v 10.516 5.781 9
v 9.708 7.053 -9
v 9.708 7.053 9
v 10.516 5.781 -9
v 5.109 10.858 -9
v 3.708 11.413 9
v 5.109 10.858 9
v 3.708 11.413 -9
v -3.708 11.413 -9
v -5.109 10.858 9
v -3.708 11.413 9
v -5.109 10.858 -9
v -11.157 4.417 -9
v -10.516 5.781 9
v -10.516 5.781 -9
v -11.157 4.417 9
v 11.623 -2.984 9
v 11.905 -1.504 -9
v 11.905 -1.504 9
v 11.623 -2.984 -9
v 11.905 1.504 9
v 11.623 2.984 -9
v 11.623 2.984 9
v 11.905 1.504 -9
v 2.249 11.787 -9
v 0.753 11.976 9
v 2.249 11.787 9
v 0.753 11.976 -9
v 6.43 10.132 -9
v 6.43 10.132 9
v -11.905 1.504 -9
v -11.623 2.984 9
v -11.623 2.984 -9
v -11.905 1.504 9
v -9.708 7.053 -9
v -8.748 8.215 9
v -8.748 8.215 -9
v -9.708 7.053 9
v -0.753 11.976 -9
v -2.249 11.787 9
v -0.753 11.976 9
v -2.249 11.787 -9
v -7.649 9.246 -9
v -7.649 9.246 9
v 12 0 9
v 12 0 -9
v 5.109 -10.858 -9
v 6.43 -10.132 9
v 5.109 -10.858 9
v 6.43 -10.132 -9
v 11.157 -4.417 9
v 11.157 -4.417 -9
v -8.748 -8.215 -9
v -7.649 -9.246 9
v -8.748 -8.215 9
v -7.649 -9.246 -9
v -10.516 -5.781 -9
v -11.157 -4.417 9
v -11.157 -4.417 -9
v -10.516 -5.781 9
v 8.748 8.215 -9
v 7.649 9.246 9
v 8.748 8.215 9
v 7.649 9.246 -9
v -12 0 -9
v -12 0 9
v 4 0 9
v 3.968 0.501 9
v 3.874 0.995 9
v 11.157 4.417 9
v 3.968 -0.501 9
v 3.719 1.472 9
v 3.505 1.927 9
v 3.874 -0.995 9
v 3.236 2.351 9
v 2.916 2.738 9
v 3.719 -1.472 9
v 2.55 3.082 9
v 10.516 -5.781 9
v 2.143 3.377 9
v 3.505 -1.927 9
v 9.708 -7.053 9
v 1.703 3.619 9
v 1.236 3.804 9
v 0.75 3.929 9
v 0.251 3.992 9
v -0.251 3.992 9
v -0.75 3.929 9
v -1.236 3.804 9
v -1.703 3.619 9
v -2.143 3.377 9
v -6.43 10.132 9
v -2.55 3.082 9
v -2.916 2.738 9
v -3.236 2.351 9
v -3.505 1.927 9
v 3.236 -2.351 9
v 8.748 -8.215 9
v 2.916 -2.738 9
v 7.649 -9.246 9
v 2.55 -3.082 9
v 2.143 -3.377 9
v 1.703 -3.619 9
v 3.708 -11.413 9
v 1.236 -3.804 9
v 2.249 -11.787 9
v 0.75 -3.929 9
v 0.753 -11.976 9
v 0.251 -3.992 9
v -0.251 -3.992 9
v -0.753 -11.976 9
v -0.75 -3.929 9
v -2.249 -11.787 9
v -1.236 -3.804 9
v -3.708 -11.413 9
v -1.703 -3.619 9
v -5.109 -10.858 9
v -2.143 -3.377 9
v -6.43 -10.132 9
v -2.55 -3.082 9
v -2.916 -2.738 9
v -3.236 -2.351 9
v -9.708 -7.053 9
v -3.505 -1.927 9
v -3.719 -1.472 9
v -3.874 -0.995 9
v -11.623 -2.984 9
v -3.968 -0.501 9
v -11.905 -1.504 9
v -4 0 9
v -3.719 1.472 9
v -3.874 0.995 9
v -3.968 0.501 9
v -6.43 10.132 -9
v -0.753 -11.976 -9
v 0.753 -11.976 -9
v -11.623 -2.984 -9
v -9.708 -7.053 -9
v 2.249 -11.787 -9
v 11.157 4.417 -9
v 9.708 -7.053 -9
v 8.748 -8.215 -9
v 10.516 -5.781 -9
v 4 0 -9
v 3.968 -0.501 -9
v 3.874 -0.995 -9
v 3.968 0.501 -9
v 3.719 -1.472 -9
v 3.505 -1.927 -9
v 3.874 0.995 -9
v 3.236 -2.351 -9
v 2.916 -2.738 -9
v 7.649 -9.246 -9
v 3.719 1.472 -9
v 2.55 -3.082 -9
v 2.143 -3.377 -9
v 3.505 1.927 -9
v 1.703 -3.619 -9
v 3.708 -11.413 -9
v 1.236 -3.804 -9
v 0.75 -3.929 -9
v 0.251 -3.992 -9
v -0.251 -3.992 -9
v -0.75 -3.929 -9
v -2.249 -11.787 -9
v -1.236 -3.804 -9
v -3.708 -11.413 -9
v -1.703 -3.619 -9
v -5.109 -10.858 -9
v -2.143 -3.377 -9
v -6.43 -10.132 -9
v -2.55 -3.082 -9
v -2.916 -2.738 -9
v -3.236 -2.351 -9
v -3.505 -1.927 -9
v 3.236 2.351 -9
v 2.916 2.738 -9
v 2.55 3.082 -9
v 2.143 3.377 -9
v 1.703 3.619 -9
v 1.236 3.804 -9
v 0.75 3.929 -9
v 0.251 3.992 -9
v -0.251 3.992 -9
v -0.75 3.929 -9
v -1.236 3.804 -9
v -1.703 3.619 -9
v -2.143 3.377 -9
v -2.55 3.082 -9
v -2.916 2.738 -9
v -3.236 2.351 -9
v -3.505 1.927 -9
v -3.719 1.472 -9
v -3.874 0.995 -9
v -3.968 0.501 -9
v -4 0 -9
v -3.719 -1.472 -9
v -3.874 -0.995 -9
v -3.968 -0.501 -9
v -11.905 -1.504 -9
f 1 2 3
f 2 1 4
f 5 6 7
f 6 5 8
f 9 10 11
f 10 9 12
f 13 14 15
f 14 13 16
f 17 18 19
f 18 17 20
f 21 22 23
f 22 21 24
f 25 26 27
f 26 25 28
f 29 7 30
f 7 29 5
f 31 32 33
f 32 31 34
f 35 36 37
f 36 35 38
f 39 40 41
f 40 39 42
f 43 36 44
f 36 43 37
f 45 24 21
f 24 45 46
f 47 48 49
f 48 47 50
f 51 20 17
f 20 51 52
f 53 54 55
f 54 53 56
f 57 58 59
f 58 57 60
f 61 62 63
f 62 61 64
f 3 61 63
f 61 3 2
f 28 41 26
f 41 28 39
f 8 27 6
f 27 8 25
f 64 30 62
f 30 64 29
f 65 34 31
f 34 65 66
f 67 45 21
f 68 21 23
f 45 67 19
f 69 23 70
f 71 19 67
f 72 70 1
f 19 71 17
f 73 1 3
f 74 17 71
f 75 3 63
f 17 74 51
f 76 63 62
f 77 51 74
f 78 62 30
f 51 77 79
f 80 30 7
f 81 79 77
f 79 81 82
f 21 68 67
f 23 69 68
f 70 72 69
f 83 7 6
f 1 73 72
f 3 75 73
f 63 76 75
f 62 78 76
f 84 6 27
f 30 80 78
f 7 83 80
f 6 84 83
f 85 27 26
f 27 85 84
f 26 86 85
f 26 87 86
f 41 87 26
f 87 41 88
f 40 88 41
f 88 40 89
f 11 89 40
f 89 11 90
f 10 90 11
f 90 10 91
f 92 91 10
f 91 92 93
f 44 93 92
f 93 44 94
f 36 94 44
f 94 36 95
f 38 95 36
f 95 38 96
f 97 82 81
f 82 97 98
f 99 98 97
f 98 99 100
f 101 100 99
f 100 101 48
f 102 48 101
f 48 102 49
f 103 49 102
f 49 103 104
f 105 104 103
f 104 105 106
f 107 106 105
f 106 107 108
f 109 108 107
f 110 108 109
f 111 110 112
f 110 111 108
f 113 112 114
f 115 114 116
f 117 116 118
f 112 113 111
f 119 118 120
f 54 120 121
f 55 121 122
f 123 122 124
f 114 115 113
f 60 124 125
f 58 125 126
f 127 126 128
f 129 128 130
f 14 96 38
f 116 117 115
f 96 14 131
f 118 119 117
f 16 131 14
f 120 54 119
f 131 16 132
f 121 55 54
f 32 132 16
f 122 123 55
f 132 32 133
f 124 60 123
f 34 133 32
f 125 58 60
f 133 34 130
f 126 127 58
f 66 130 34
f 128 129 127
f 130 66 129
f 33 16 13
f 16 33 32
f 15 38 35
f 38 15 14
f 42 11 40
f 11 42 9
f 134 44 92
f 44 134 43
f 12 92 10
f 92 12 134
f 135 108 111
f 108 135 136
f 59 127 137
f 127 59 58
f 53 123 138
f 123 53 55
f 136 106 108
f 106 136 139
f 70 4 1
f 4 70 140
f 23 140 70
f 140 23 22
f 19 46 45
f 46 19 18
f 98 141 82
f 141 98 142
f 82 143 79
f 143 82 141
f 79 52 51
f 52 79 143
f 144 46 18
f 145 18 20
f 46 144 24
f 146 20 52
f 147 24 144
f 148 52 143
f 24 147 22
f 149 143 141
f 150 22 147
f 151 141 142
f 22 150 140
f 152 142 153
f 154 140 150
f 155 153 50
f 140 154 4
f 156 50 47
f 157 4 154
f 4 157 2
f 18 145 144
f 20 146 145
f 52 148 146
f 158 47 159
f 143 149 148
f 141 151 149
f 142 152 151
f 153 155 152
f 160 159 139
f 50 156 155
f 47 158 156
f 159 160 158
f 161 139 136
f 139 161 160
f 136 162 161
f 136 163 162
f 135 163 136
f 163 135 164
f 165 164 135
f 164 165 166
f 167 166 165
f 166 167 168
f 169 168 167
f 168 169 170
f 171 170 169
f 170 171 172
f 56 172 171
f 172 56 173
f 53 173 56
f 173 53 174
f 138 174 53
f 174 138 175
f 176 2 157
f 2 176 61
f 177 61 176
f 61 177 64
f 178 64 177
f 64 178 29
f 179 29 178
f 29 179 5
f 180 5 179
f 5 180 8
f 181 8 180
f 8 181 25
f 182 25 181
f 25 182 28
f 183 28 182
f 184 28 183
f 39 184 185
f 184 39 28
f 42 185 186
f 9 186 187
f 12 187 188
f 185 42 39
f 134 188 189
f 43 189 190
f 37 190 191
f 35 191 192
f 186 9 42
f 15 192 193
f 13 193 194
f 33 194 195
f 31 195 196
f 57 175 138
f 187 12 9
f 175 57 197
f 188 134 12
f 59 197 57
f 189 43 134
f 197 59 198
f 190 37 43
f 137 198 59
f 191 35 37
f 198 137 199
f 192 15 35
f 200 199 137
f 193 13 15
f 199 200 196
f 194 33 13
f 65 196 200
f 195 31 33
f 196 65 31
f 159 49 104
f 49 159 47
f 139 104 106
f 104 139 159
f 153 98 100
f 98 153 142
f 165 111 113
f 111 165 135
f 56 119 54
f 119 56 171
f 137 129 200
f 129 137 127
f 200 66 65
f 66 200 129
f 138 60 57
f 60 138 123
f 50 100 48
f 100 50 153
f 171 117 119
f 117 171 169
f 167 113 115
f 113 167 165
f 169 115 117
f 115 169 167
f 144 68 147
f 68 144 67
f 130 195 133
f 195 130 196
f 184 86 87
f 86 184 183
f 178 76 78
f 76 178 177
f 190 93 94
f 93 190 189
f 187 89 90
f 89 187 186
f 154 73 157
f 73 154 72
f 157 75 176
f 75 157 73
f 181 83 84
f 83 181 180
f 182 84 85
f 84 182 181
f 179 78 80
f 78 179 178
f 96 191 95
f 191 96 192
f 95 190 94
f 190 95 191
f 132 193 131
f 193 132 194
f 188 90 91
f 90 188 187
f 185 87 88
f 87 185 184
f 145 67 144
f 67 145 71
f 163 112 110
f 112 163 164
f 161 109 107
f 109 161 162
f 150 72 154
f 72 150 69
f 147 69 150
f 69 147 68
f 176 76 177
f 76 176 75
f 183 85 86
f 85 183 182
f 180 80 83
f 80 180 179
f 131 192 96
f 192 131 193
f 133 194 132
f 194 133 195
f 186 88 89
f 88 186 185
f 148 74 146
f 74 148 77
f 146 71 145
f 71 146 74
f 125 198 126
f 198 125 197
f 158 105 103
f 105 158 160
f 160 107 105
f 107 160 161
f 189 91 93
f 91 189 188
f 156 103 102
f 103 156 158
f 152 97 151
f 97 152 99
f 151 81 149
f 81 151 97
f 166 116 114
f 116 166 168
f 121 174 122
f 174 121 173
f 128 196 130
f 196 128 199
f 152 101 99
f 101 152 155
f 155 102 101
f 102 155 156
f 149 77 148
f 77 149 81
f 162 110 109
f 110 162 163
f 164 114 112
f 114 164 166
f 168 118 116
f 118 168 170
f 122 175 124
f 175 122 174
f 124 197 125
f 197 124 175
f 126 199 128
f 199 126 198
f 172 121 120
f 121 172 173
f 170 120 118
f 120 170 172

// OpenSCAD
$fn = 50;


difference() {
	union() {
		translate(v = [0, 0, -9.0000000000]) {
			cylinder(h = 18, r = 12.0000000000);
		}
	}
	union() {
		translate(v = [0, 0, -100.0000000000]) {
			cylinder(h = 200, r = 4);
		}
	}
}
